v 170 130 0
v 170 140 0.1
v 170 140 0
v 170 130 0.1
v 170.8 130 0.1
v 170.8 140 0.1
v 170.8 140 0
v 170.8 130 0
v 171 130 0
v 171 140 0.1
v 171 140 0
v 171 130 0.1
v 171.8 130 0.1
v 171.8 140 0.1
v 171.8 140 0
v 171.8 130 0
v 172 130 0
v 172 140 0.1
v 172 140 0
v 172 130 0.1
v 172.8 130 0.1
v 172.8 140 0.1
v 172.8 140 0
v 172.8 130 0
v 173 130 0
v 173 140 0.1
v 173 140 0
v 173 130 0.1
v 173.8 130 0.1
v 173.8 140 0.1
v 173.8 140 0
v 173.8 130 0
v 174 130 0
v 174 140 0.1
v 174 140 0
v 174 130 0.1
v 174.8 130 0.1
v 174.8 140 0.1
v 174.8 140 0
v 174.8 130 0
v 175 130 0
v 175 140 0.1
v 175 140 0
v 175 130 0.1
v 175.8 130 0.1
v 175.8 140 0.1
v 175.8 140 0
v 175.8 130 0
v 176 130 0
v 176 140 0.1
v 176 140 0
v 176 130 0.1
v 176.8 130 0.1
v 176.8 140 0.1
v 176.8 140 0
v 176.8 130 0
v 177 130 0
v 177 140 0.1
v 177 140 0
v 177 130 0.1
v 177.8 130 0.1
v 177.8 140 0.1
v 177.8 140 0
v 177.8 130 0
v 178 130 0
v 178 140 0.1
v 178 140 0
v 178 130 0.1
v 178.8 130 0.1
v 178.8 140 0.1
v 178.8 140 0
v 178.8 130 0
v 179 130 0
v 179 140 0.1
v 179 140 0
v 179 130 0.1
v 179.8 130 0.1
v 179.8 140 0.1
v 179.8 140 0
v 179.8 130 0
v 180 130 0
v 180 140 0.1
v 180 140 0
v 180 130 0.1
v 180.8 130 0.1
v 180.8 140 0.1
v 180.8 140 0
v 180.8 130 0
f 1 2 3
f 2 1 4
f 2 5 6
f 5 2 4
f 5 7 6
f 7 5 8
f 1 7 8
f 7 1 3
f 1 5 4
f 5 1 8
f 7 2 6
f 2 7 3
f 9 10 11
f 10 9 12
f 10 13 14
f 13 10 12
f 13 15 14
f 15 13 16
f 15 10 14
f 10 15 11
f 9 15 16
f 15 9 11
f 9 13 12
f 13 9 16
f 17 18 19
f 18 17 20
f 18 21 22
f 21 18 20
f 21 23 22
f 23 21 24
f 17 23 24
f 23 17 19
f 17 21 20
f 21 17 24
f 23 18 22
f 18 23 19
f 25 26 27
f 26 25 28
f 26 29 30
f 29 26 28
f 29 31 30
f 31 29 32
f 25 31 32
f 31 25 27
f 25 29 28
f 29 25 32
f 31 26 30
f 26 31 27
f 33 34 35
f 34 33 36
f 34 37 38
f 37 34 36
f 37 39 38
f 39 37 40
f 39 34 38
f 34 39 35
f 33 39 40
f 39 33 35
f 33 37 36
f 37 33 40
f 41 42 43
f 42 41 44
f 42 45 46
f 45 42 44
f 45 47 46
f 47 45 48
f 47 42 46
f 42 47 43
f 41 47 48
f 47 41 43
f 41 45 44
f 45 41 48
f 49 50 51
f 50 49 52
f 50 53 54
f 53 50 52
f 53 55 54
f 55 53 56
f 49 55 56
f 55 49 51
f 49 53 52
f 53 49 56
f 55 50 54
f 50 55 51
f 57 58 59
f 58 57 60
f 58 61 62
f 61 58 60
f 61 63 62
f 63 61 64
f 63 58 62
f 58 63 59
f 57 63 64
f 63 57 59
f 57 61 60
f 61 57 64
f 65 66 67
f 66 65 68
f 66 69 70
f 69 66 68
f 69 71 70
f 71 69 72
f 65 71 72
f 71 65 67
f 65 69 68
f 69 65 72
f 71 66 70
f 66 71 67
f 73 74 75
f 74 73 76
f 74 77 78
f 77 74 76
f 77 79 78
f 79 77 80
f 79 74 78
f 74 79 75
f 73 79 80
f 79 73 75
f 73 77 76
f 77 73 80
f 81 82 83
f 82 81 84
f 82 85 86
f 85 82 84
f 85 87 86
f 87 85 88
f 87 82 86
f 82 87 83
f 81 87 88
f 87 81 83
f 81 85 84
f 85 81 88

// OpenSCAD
translate([10+160,10+120,0])
        for (i = [0 : 10]){
            translate([i,0,0])
                cube(size = [0.8,10,0.1]);
    }
